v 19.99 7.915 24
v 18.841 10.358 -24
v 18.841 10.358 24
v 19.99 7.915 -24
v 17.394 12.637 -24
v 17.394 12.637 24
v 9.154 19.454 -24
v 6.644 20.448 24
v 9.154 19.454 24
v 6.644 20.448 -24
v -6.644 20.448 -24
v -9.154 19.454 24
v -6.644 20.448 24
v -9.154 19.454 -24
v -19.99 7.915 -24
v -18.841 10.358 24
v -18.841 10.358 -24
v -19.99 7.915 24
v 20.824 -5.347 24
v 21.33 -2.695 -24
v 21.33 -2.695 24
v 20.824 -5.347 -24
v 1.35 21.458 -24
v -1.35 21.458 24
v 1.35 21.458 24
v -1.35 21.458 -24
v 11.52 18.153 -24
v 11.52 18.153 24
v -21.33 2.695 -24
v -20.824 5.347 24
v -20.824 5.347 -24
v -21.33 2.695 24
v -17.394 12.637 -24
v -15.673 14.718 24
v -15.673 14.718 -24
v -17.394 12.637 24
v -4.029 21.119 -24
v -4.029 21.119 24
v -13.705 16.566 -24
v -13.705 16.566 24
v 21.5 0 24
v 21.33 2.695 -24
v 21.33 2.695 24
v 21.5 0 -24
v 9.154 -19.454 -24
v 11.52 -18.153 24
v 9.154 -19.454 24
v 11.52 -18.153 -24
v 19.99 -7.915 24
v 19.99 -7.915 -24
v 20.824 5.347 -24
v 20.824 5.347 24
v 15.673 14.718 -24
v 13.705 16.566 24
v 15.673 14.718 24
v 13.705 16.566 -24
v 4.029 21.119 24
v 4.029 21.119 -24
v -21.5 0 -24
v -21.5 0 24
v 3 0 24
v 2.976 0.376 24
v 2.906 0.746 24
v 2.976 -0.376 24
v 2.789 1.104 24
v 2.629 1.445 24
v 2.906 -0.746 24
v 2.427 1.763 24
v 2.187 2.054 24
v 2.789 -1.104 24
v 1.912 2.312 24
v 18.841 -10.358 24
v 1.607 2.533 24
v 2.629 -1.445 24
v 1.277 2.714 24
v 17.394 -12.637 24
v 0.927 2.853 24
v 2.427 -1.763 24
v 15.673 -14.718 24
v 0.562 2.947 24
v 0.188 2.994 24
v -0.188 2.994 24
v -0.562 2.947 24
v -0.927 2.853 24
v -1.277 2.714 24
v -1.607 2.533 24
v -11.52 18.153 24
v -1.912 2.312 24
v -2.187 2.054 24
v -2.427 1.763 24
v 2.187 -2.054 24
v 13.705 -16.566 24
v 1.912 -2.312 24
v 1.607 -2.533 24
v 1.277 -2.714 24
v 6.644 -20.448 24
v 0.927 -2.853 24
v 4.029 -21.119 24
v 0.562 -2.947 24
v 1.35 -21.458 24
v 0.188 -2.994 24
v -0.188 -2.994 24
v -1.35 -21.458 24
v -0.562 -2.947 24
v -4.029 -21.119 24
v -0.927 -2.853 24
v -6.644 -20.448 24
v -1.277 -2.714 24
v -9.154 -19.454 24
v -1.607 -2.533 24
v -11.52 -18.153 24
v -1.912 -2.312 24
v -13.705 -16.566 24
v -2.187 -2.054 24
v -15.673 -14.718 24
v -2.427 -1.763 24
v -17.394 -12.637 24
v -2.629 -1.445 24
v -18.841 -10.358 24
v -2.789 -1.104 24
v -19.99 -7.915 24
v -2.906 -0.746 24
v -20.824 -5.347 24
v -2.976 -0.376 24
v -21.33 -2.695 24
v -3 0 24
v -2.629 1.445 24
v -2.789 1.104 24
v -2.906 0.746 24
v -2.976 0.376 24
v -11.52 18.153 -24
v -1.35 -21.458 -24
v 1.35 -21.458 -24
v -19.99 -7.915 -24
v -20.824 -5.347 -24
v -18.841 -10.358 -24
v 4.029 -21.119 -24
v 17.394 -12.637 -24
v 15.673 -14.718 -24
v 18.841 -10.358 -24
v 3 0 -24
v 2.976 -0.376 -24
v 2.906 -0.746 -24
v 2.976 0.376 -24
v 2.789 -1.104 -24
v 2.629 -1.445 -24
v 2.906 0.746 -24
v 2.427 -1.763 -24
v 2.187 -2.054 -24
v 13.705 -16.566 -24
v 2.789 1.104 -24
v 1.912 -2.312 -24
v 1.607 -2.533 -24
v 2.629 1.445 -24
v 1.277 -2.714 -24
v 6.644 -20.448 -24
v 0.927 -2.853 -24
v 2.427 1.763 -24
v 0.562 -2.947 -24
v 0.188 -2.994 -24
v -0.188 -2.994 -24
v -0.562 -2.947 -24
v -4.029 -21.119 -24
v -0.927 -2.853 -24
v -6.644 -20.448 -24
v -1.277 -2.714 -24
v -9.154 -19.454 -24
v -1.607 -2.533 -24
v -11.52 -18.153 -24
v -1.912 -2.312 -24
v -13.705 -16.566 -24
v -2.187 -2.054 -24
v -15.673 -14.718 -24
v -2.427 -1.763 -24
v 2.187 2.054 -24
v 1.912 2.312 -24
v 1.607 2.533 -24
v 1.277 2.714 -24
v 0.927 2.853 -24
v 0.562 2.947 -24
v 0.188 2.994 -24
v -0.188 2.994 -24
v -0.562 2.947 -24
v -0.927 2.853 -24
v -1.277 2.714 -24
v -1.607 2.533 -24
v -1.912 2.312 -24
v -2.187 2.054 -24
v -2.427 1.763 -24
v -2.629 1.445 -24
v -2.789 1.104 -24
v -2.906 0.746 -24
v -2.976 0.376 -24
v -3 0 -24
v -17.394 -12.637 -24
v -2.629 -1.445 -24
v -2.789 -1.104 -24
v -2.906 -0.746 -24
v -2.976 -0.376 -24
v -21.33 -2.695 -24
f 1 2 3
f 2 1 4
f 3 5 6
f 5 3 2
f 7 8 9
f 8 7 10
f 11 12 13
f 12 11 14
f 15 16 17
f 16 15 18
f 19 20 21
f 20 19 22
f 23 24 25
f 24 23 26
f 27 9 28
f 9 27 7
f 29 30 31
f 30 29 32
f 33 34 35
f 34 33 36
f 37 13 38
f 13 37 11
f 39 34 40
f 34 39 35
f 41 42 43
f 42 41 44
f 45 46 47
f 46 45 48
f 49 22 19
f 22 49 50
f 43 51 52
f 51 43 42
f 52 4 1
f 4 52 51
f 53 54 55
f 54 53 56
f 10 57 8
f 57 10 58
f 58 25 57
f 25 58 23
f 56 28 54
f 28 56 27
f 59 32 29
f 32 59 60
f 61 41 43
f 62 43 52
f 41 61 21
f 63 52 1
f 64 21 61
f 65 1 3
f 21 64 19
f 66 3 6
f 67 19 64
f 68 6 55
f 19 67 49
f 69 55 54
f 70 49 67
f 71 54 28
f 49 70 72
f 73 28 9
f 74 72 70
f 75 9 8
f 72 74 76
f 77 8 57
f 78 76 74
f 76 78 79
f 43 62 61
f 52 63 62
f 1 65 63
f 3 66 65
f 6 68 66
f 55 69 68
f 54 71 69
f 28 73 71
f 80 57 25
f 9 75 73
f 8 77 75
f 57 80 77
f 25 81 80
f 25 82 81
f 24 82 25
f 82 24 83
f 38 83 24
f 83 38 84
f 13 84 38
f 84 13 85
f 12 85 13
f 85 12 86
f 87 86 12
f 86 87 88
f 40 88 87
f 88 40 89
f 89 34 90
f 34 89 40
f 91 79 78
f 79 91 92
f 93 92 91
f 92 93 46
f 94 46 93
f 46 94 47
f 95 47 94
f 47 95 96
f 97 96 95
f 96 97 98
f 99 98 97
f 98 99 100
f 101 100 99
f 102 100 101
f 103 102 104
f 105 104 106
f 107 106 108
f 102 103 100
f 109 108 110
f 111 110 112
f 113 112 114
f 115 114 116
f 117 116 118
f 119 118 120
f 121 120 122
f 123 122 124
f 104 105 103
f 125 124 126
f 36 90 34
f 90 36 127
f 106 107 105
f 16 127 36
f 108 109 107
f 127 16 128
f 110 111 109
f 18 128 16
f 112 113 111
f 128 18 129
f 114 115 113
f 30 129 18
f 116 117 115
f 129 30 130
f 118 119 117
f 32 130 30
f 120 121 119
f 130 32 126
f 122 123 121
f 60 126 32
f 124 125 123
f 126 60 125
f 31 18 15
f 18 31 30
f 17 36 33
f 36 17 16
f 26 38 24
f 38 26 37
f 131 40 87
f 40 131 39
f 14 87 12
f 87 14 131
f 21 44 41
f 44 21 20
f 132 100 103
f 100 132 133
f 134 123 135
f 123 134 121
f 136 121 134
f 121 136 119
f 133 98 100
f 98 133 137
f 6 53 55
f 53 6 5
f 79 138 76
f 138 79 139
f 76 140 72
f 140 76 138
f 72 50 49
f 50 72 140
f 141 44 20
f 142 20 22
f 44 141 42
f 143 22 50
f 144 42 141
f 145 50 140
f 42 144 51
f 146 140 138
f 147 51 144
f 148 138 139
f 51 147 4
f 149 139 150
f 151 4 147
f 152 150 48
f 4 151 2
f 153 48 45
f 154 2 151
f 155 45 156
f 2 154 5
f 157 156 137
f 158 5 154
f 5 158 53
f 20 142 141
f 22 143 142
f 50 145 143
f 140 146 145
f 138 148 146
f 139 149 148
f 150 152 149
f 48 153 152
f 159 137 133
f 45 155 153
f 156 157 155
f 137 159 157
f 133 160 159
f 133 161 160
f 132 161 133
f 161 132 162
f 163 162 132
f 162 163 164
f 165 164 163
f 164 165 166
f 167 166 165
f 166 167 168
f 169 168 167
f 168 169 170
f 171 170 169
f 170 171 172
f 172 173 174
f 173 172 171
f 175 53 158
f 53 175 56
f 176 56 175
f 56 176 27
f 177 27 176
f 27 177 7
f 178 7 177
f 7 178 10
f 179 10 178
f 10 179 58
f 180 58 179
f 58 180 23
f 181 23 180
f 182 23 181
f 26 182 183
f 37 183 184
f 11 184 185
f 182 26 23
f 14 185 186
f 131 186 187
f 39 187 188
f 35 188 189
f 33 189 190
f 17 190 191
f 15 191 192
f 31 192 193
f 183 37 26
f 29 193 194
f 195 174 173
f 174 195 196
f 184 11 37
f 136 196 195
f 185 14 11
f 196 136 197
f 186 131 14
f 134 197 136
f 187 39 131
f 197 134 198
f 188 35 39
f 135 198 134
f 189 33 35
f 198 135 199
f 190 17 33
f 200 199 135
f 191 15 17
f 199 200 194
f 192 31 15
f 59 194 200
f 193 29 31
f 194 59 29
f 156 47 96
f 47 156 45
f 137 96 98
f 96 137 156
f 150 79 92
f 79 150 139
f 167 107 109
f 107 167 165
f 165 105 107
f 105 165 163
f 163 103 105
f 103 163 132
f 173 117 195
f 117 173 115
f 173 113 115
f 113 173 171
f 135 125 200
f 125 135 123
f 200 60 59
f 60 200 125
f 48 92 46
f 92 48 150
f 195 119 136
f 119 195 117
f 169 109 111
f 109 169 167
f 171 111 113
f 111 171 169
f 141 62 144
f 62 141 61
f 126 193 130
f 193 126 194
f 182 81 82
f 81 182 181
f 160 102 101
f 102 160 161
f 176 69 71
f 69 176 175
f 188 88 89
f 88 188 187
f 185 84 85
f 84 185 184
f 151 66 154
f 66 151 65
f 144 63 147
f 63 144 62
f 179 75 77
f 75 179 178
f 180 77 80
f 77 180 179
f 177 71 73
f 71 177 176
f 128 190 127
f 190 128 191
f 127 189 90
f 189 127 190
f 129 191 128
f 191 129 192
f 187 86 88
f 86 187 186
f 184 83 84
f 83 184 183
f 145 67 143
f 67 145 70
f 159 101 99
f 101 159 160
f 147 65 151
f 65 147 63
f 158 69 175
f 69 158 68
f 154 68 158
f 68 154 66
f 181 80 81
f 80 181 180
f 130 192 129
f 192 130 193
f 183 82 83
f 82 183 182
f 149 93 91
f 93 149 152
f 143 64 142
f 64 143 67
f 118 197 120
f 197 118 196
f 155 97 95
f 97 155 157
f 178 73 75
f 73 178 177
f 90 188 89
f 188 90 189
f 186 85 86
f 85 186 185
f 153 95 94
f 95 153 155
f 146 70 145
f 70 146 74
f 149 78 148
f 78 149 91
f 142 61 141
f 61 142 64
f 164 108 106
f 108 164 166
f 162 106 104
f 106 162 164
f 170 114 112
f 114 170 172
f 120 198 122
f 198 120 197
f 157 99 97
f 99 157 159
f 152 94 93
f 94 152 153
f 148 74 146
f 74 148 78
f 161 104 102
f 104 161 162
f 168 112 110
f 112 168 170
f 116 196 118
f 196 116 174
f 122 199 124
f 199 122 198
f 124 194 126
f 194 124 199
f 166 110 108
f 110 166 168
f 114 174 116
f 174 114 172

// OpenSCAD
$fn = 50;


difference() {
	union() {
		translate(v = [0, 0, -24.0000000000]) {
			cylinder(h = 48, r = 21.5000000000);
		}
	}
	union() {
		translate(v = [0, 0, -100.0000000000]) {
			cylinder(h = 200, r = 3);
		}
	}
}
